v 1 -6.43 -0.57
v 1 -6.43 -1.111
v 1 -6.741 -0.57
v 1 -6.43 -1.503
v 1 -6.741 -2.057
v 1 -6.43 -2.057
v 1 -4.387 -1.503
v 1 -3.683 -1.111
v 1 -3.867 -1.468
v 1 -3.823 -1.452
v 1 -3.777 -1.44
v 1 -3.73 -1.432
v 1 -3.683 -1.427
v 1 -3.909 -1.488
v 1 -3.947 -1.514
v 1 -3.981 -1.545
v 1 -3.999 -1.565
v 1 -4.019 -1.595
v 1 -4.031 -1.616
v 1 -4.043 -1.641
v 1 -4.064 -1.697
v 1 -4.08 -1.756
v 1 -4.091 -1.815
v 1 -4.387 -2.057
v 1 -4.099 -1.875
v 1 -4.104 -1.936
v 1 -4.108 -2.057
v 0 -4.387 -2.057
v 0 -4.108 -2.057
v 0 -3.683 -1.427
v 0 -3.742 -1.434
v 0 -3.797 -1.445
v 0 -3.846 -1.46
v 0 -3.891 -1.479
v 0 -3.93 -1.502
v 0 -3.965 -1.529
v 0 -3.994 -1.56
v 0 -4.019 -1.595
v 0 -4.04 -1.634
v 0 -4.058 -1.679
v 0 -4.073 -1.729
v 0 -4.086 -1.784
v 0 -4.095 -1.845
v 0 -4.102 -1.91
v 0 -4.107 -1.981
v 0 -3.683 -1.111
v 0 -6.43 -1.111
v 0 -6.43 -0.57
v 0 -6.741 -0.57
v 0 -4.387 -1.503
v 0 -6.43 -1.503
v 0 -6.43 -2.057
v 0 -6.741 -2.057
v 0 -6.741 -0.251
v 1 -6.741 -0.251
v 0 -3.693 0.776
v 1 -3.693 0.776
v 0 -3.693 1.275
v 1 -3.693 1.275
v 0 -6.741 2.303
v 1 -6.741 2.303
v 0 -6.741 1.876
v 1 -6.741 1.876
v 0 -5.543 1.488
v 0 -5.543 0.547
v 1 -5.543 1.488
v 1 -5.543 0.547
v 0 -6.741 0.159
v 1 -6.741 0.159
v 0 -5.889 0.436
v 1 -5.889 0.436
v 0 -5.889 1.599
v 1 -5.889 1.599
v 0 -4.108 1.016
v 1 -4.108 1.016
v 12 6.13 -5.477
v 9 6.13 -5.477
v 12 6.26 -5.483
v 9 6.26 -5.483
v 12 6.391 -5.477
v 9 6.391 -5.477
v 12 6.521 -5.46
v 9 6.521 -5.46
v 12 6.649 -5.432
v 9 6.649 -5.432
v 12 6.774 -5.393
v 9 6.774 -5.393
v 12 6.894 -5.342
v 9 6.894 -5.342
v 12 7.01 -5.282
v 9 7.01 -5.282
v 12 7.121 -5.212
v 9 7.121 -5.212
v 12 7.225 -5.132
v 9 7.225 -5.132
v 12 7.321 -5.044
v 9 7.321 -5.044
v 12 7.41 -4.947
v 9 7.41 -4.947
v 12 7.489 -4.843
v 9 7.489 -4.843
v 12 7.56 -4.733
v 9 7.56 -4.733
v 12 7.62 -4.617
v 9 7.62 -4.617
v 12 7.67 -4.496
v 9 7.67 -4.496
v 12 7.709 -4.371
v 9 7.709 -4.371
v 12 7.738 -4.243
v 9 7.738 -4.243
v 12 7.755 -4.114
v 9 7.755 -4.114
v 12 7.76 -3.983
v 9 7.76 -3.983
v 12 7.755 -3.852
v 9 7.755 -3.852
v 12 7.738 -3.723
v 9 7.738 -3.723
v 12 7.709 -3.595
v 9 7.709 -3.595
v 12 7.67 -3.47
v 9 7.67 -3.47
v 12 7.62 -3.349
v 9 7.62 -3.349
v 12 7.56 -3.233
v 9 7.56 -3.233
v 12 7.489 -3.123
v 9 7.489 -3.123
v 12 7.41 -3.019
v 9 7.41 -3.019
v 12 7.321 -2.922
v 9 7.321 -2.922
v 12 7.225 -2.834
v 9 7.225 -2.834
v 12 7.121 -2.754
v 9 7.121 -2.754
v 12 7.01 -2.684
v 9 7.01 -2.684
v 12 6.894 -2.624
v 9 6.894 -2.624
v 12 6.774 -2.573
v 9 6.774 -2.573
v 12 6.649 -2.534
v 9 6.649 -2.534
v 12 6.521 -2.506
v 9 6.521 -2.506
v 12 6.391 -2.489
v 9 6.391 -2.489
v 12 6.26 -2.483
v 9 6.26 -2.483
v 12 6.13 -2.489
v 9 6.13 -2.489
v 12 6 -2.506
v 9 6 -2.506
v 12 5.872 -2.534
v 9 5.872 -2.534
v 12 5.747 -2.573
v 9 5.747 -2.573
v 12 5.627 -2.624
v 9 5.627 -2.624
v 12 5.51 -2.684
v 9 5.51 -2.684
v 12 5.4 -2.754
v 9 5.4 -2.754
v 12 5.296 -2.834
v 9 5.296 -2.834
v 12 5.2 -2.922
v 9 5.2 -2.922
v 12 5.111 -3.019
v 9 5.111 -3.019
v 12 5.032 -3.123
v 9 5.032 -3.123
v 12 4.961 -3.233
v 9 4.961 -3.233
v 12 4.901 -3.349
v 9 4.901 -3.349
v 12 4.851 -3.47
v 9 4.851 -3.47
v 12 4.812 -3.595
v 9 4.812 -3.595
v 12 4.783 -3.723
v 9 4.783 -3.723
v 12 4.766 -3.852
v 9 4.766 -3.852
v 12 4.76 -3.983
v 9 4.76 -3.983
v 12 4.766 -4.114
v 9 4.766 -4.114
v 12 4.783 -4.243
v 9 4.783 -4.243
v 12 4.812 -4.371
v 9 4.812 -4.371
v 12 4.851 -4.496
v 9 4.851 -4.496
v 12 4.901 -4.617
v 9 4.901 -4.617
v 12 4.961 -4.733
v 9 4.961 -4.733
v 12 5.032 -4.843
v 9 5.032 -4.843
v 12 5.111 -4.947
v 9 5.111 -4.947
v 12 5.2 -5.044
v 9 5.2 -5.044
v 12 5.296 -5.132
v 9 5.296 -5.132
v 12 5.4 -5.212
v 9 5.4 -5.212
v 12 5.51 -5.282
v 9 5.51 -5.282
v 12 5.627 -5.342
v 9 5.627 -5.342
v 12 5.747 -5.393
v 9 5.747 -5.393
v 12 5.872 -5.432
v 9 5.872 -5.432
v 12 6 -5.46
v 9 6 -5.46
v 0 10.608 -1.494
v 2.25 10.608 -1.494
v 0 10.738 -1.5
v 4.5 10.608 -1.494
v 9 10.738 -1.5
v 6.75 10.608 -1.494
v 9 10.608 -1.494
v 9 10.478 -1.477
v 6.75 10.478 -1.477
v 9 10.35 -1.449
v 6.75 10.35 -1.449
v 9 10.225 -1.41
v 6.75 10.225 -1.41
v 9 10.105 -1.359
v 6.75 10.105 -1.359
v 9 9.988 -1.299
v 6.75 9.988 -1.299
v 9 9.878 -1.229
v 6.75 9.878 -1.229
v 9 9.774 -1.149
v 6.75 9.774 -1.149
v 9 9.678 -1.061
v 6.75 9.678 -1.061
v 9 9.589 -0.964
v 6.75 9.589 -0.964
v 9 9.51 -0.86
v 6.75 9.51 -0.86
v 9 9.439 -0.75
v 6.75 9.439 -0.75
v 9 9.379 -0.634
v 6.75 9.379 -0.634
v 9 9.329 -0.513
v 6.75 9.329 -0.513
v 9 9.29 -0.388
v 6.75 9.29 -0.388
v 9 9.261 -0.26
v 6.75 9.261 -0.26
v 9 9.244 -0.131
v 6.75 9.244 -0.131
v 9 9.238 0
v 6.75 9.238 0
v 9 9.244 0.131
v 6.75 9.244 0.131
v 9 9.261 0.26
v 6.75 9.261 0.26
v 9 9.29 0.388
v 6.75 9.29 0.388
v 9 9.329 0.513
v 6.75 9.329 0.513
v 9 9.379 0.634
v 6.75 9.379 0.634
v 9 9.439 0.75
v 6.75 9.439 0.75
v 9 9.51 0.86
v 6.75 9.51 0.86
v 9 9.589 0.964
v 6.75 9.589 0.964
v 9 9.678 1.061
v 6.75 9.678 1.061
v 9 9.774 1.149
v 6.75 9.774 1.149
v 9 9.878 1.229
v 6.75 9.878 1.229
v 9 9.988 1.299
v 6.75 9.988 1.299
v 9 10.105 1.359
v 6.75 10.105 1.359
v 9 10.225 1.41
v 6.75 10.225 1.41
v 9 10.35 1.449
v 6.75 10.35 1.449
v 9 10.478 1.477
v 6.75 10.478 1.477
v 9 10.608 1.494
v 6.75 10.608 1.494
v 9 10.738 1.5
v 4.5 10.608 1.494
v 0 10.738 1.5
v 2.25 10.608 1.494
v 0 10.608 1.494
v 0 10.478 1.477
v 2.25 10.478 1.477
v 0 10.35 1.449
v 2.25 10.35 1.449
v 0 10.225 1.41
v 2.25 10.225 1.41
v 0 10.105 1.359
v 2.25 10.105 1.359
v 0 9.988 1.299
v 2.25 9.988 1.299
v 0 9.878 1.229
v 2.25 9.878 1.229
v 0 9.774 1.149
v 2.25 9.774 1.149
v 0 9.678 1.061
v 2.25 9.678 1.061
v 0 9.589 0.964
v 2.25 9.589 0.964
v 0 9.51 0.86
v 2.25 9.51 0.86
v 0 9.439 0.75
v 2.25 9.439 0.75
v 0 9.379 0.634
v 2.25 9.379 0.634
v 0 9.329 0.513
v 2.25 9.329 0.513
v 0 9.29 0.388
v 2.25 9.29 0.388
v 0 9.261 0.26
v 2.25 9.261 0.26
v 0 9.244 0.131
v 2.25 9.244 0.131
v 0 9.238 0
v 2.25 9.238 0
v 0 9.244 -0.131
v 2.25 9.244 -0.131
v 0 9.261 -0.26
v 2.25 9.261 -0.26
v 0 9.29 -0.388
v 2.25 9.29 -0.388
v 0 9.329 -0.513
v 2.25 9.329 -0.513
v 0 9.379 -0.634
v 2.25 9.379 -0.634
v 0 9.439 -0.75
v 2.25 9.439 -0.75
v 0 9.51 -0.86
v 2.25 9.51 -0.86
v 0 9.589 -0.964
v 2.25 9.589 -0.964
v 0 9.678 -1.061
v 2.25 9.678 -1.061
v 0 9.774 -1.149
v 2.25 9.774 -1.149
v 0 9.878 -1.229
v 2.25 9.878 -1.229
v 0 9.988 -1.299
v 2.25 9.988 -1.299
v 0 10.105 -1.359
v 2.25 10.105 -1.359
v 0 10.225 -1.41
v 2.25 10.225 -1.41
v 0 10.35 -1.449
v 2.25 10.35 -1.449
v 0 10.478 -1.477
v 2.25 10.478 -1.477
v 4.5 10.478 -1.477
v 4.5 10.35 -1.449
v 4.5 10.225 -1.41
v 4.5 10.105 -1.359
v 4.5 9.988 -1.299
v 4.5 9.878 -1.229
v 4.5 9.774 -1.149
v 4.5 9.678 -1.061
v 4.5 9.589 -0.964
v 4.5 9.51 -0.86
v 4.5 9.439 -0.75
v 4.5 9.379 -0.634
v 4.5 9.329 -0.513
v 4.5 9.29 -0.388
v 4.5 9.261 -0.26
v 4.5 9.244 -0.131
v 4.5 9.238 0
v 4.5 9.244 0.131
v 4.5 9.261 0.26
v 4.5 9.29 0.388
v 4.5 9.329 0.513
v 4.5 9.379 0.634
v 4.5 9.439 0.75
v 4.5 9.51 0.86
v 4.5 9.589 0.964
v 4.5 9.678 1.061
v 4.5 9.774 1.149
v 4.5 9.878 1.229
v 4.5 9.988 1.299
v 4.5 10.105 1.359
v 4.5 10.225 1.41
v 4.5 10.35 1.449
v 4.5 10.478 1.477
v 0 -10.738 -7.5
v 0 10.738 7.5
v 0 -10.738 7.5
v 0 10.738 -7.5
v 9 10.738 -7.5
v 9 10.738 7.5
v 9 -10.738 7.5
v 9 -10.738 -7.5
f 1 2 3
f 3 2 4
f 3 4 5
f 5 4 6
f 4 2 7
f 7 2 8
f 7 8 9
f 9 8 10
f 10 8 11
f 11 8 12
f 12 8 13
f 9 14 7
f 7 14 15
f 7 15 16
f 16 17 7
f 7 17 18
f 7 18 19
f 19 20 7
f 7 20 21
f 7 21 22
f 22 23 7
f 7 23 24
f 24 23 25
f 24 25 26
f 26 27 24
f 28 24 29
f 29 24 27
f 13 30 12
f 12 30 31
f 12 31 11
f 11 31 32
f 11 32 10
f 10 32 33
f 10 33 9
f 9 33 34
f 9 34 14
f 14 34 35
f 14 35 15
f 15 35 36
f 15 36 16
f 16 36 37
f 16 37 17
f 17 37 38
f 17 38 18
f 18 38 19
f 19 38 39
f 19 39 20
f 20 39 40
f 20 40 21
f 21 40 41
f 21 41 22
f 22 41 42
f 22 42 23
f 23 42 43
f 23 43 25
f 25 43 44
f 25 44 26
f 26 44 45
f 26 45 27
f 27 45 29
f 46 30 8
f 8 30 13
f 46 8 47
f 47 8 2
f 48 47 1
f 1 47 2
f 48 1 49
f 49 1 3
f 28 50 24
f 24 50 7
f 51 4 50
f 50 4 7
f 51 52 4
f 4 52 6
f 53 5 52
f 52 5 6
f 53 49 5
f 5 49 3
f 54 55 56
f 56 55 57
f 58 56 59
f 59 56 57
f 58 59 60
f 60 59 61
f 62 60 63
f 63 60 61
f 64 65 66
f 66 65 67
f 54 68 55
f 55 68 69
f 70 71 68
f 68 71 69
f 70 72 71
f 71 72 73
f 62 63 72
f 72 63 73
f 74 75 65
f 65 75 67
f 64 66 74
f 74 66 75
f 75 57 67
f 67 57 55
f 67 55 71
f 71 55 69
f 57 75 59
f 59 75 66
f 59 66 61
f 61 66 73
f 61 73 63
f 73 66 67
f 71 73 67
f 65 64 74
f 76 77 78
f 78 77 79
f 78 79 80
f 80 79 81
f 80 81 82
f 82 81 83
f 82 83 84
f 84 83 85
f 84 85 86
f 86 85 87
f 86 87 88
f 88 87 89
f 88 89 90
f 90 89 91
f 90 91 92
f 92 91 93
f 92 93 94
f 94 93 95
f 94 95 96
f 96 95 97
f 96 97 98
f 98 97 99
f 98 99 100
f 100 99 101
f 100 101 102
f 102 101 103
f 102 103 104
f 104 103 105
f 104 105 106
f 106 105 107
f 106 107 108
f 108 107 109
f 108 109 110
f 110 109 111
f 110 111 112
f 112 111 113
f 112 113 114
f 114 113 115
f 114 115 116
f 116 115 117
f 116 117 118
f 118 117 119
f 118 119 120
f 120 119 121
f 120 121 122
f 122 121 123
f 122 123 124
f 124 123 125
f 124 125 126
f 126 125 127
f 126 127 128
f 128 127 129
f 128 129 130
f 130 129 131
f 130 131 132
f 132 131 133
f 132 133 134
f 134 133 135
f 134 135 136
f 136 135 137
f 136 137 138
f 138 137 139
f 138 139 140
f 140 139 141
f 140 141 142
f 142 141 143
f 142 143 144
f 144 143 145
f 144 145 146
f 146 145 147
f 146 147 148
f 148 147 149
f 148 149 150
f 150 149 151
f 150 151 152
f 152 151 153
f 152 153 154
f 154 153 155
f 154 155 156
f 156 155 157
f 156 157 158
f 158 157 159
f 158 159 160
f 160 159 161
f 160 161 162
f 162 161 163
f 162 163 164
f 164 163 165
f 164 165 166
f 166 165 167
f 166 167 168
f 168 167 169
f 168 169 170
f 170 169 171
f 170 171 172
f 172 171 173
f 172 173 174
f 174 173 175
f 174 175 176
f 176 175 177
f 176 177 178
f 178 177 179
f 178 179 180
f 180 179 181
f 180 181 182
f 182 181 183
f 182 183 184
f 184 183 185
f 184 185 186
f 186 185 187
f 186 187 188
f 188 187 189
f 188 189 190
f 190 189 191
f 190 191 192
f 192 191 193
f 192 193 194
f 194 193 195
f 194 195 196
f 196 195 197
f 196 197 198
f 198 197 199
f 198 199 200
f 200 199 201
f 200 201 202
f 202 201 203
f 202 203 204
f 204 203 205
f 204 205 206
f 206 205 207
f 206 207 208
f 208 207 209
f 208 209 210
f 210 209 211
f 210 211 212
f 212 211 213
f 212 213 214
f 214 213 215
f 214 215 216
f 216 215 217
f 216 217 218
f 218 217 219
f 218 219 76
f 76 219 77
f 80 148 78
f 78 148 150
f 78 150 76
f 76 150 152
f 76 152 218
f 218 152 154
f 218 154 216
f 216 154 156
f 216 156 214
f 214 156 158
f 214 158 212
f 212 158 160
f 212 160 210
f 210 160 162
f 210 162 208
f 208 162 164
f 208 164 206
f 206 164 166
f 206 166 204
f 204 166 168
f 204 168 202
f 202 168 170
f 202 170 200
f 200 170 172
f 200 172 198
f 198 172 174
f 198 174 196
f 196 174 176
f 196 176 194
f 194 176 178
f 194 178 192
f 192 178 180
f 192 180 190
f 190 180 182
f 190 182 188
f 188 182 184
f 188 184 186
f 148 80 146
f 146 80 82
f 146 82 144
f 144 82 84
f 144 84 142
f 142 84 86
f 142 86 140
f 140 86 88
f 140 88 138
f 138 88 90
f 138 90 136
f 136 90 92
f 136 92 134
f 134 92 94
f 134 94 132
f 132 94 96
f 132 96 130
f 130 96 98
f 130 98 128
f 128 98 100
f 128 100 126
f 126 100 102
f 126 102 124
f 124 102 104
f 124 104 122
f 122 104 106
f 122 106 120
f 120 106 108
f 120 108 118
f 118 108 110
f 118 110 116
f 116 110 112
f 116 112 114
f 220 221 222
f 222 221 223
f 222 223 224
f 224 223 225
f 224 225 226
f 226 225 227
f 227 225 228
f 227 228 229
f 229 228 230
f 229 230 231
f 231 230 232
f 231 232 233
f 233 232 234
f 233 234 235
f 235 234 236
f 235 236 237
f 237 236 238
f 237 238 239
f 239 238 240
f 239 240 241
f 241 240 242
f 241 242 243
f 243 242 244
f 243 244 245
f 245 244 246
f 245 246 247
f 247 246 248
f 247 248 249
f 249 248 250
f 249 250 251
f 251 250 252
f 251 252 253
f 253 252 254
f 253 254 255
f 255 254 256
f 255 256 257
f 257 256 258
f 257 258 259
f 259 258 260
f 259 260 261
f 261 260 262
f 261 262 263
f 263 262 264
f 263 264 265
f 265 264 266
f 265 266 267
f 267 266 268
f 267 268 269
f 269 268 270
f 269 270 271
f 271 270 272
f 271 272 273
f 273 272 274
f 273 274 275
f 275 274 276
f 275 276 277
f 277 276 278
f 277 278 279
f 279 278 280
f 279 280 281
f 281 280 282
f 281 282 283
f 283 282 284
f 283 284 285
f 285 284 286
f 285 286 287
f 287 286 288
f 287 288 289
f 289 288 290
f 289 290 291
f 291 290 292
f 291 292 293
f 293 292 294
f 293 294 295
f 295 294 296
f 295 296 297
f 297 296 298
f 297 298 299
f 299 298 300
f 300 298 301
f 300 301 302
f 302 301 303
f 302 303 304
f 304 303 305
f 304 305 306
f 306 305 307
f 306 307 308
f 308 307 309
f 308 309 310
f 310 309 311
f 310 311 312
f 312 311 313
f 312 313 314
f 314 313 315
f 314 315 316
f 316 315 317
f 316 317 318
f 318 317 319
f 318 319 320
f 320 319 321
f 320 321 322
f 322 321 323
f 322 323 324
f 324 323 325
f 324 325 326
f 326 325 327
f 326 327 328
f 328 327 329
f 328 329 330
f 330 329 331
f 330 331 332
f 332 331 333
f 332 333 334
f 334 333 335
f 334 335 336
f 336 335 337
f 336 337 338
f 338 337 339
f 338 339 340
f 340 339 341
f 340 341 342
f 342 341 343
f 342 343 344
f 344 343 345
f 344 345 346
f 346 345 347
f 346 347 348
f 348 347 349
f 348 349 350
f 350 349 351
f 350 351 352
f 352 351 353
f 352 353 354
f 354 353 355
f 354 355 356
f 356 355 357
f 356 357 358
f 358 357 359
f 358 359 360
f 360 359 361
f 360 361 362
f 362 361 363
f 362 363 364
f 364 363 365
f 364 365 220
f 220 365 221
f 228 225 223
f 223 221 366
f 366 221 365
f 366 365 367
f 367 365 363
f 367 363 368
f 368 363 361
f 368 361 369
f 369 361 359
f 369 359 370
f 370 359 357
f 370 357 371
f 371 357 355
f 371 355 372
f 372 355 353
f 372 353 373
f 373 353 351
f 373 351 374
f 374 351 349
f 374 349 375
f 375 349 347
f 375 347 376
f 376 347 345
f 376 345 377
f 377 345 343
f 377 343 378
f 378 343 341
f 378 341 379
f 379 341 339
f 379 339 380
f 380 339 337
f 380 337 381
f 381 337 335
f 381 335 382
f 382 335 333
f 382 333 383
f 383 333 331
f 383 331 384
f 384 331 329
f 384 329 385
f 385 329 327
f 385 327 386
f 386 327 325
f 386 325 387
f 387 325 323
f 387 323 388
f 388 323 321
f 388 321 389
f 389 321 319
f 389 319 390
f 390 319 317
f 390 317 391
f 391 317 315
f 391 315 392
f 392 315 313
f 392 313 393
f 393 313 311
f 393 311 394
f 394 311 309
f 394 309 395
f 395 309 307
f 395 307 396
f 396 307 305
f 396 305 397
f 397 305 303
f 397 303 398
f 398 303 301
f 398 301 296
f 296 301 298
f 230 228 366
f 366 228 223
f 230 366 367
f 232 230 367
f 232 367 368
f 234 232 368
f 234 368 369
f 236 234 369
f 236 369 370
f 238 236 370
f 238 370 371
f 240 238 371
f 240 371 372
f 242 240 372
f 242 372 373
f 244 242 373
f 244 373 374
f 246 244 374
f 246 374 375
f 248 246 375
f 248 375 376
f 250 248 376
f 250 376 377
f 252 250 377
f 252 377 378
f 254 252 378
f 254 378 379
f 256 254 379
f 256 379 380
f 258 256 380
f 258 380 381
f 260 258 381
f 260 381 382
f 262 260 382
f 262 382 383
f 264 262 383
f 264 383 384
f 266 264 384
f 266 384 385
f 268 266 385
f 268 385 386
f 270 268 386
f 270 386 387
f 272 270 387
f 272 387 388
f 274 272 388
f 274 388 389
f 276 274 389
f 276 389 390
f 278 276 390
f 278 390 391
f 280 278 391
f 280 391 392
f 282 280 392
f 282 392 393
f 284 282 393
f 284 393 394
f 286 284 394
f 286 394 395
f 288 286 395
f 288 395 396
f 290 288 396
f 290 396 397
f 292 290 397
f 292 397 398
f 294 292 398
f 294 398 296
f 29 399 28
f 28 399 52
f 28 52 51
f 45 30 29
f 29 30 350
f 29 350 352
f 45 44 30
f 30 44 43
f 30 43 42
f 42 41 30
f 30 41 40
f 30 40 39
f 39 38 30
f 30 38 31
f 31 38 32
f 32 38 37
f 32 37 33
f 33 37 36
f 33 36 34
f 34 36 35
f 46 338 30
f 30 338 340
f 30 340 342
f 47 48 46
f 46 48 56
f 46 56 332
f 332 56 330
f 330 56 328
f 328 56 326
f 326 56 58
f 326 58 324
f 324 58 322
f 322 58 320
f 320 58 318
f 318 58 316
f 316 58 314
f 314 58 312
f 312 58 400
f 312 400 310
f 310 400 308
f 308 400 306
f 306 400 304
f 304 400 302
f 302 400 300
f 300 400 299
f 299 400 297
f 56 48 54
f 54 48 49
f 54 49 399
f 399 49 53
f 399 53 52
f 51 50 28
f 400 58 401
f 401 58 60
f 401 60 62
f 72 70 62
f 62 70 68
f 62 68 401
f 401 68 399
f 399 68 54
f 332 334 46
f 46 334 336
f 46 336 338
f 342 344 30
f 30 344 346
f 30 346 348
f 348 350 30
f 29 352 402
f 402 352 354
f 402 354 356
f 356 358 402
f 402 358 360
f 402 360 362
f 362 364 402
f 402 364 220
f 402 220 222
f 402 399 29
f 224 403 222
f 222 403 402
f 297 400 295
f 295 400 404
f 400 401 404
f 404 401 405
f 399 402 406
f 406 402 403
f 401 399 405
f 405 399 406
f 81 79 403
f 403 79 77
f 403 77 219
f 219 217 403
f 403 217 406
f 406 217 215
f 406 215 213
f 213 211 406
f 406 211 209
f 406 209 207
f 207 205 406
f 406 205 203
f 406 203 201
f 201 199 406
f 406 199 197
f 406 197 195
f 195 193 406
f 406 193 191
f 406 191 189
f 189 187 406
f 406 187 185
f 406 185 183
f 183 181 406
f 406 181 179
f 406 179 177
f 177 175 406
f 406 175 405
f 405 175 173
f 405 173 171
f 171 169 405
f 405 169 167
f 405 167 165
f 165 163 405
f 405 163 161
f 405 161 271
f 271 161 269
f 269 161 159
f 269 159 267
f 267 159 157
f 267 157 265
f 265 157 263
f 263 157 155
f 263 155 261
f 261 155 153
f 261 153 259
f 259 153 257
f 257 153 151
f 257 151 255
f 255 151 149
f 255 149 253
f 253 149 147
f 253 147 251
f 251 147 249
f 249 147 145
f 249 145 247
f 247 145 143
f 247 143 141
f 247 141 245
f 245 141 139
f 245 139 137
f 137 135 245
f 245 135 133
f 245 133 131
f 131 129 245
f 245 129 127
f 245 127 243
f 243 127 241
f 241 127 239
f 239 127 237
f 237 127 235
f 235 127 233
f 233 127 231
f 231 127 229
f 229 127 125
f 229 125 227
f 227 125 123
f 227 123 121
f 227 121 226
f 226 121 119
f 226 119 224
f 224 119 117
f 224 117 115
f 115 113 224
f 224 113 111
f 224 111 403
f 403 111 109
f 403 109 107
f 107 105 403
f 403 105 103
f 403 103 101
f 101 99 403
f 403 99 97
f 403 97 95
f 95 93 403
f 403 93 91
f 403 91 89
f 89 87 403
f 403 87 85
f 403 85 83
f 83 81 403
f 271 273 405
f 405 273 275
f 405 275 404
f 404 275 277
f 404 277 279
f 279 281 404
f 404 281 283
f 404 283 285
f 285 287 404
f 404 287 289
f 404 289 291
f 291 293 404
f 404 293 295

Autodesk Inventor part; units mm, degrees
ref_plane "YZ Plane" through (0, 0, 0) normal (1, 0, 0) x (0, 1, 0)
ref_plane "XZ Plane" through (0, 0, 0) normal (0, 1, 0) x (-1, 0, 0)
ref_plane "XY Plane" through (0, 0, 0) normal (0, 0, 1) x (1, 0, 0)
sketch "Sketch1" plane through (0, 0, 0) normal (1, 0, 0) x (0, 1, 0)
  line L0 (10.7385, 7.5) -> (-10.7385, 7.5)
  line L1 (-10.7385, 7.5) -> (-10.7385, -7.5)
  line L2 (-10.7385, -7.5) -> (10.7385, -7.5)
  line L3 (10.7385, -7.5) -> (10.7385, 7.5)
  point P0 (0, 0)
  dimension "d0" = 21.477
  dimension "d1" = 15
  dimension "d2" = 10.7385
  dimension "d3" = 7.5
extrude "Extrusion1" add sketch "Sketch1" along normal blind 9
sketch "Sketch2" plane through (9, 0, 0) normal (1, 0, 0) x (0, 0, -1)
  line L0 (7.5, 10.7385) -> (-7.5, 10.7385) projected
  arc A0 (-1.5, 10.7385) -> (1.5, 10.7385) centre (0, 10.7385) ccw
  point P0 (0, 0)
  dimension "d8" = 3
extrude "Extrusion2" cut sketch "Sketch2" against normal through all
sketch "Sketch3" plane through (9, 0, 0) normal (1, 0, 0) x (0, 0, -1)
  circle A0 centre (3.983, 6.2605) radius 1.5
  arc A1 (-1.5, 10.7385) -> (1.5, 10.7385) centre (0, 10.7385) ccw projected
  line L0 (7.5, 10.7385) -> (1.5, 10.7385) projected
  point P0 (0, 0)
  dimension "d12" = 3
  dimension "d13" = 3.983
  dimension "d14" = 4.478
extrude "Extrusion3" add sketch "Sketch3" along normal blind 3
sketch "Sketch4" plane through (0, 0, 0) normal (-1, 0, 0) x (0, 0, 1)
  line L0 (-2.5186, -3.6831) -> (10.3419, -3.6831) construction
  line L1 (10.3419, -3.6831) -> (10.3419, -8.8157) construction
  line L2 (10.3419, -8.8157) -> (-2.5186, -8.8157) construction
  line L3 (-2.5186, -8.8157) -> (-2.5186, -3.6831) construction
  line L4 (-0.5697, -6.741) -> (-2.0567, -6.741)
  line L5 (-2.0567, -6.741) -> (-2.0567, -6.4297)
  line L6 (-2.0567, -6.4297) -> (-1.5034, -6.4297)
  line L7 (-1.5034, -6.4297) -> (-1.5034, -4.387)
  line L8 (-1.5034, -4.387) -> (-2.0567, -4.387)
  line L9 (-2.0567, -4.387) -> (-2.0567, -4.1079)
  spline S0 degree 2 poles (-2.0567, -4.1079) (-1.743, -4.1079) (-1.4466, -3.9301) (-1.4268, -3.6831) knots 0 0 0 1 2 2 2
  line L10 (-1.4268, -3.6831) -> (-1.1106, -3.6831)
  line L11 (-1.1106, -3.6831) -> (-1.1106, -6.4297)
  line L12 (-1.1106, -6.4297) -> (-0.5697, -6.4297)
  line L13 (-0.5697, -6.4297) -> (-0.5697, -6.741)
  line L14 (-0.2511, -6.741) -> (0.7764, -3.693)
  line L15 (0.7764, -3.693) -> (1.2754, -3.693)
  line L16 (1.2754, -3.693) -> (2.3029, -6.741)
  line L17 (2.3029, -6.741) -> (1.8756, -6.741)
  line L18 (1.8756, -6.741) -> (1.599, -5.8888)
  line L19 (1.599, -5.8888) -> (0.4356, -5.8888)
  line L20 (0.4356, -5.8888) -> (0.1589, -6.741)
  line L21 (0.1589, -6.741) -> (-0.2511, -6.741)
  line L22 (1.4878, -5.543) -> (1.016, -4.1079)
  line L23 (1.016, -4.1079) -> (0.5467, -5.543)
  line L24 (0.5467, -5.543) -> (1.4878, -5.543)
  point P0 (0, 0)
emboss "Emboss1" sketch "Sketch4" operation cut depth 1 direction (1, 0, 0)
equation "\"d2\" = 0.5 * d0"
properties part number "Support_1A"
